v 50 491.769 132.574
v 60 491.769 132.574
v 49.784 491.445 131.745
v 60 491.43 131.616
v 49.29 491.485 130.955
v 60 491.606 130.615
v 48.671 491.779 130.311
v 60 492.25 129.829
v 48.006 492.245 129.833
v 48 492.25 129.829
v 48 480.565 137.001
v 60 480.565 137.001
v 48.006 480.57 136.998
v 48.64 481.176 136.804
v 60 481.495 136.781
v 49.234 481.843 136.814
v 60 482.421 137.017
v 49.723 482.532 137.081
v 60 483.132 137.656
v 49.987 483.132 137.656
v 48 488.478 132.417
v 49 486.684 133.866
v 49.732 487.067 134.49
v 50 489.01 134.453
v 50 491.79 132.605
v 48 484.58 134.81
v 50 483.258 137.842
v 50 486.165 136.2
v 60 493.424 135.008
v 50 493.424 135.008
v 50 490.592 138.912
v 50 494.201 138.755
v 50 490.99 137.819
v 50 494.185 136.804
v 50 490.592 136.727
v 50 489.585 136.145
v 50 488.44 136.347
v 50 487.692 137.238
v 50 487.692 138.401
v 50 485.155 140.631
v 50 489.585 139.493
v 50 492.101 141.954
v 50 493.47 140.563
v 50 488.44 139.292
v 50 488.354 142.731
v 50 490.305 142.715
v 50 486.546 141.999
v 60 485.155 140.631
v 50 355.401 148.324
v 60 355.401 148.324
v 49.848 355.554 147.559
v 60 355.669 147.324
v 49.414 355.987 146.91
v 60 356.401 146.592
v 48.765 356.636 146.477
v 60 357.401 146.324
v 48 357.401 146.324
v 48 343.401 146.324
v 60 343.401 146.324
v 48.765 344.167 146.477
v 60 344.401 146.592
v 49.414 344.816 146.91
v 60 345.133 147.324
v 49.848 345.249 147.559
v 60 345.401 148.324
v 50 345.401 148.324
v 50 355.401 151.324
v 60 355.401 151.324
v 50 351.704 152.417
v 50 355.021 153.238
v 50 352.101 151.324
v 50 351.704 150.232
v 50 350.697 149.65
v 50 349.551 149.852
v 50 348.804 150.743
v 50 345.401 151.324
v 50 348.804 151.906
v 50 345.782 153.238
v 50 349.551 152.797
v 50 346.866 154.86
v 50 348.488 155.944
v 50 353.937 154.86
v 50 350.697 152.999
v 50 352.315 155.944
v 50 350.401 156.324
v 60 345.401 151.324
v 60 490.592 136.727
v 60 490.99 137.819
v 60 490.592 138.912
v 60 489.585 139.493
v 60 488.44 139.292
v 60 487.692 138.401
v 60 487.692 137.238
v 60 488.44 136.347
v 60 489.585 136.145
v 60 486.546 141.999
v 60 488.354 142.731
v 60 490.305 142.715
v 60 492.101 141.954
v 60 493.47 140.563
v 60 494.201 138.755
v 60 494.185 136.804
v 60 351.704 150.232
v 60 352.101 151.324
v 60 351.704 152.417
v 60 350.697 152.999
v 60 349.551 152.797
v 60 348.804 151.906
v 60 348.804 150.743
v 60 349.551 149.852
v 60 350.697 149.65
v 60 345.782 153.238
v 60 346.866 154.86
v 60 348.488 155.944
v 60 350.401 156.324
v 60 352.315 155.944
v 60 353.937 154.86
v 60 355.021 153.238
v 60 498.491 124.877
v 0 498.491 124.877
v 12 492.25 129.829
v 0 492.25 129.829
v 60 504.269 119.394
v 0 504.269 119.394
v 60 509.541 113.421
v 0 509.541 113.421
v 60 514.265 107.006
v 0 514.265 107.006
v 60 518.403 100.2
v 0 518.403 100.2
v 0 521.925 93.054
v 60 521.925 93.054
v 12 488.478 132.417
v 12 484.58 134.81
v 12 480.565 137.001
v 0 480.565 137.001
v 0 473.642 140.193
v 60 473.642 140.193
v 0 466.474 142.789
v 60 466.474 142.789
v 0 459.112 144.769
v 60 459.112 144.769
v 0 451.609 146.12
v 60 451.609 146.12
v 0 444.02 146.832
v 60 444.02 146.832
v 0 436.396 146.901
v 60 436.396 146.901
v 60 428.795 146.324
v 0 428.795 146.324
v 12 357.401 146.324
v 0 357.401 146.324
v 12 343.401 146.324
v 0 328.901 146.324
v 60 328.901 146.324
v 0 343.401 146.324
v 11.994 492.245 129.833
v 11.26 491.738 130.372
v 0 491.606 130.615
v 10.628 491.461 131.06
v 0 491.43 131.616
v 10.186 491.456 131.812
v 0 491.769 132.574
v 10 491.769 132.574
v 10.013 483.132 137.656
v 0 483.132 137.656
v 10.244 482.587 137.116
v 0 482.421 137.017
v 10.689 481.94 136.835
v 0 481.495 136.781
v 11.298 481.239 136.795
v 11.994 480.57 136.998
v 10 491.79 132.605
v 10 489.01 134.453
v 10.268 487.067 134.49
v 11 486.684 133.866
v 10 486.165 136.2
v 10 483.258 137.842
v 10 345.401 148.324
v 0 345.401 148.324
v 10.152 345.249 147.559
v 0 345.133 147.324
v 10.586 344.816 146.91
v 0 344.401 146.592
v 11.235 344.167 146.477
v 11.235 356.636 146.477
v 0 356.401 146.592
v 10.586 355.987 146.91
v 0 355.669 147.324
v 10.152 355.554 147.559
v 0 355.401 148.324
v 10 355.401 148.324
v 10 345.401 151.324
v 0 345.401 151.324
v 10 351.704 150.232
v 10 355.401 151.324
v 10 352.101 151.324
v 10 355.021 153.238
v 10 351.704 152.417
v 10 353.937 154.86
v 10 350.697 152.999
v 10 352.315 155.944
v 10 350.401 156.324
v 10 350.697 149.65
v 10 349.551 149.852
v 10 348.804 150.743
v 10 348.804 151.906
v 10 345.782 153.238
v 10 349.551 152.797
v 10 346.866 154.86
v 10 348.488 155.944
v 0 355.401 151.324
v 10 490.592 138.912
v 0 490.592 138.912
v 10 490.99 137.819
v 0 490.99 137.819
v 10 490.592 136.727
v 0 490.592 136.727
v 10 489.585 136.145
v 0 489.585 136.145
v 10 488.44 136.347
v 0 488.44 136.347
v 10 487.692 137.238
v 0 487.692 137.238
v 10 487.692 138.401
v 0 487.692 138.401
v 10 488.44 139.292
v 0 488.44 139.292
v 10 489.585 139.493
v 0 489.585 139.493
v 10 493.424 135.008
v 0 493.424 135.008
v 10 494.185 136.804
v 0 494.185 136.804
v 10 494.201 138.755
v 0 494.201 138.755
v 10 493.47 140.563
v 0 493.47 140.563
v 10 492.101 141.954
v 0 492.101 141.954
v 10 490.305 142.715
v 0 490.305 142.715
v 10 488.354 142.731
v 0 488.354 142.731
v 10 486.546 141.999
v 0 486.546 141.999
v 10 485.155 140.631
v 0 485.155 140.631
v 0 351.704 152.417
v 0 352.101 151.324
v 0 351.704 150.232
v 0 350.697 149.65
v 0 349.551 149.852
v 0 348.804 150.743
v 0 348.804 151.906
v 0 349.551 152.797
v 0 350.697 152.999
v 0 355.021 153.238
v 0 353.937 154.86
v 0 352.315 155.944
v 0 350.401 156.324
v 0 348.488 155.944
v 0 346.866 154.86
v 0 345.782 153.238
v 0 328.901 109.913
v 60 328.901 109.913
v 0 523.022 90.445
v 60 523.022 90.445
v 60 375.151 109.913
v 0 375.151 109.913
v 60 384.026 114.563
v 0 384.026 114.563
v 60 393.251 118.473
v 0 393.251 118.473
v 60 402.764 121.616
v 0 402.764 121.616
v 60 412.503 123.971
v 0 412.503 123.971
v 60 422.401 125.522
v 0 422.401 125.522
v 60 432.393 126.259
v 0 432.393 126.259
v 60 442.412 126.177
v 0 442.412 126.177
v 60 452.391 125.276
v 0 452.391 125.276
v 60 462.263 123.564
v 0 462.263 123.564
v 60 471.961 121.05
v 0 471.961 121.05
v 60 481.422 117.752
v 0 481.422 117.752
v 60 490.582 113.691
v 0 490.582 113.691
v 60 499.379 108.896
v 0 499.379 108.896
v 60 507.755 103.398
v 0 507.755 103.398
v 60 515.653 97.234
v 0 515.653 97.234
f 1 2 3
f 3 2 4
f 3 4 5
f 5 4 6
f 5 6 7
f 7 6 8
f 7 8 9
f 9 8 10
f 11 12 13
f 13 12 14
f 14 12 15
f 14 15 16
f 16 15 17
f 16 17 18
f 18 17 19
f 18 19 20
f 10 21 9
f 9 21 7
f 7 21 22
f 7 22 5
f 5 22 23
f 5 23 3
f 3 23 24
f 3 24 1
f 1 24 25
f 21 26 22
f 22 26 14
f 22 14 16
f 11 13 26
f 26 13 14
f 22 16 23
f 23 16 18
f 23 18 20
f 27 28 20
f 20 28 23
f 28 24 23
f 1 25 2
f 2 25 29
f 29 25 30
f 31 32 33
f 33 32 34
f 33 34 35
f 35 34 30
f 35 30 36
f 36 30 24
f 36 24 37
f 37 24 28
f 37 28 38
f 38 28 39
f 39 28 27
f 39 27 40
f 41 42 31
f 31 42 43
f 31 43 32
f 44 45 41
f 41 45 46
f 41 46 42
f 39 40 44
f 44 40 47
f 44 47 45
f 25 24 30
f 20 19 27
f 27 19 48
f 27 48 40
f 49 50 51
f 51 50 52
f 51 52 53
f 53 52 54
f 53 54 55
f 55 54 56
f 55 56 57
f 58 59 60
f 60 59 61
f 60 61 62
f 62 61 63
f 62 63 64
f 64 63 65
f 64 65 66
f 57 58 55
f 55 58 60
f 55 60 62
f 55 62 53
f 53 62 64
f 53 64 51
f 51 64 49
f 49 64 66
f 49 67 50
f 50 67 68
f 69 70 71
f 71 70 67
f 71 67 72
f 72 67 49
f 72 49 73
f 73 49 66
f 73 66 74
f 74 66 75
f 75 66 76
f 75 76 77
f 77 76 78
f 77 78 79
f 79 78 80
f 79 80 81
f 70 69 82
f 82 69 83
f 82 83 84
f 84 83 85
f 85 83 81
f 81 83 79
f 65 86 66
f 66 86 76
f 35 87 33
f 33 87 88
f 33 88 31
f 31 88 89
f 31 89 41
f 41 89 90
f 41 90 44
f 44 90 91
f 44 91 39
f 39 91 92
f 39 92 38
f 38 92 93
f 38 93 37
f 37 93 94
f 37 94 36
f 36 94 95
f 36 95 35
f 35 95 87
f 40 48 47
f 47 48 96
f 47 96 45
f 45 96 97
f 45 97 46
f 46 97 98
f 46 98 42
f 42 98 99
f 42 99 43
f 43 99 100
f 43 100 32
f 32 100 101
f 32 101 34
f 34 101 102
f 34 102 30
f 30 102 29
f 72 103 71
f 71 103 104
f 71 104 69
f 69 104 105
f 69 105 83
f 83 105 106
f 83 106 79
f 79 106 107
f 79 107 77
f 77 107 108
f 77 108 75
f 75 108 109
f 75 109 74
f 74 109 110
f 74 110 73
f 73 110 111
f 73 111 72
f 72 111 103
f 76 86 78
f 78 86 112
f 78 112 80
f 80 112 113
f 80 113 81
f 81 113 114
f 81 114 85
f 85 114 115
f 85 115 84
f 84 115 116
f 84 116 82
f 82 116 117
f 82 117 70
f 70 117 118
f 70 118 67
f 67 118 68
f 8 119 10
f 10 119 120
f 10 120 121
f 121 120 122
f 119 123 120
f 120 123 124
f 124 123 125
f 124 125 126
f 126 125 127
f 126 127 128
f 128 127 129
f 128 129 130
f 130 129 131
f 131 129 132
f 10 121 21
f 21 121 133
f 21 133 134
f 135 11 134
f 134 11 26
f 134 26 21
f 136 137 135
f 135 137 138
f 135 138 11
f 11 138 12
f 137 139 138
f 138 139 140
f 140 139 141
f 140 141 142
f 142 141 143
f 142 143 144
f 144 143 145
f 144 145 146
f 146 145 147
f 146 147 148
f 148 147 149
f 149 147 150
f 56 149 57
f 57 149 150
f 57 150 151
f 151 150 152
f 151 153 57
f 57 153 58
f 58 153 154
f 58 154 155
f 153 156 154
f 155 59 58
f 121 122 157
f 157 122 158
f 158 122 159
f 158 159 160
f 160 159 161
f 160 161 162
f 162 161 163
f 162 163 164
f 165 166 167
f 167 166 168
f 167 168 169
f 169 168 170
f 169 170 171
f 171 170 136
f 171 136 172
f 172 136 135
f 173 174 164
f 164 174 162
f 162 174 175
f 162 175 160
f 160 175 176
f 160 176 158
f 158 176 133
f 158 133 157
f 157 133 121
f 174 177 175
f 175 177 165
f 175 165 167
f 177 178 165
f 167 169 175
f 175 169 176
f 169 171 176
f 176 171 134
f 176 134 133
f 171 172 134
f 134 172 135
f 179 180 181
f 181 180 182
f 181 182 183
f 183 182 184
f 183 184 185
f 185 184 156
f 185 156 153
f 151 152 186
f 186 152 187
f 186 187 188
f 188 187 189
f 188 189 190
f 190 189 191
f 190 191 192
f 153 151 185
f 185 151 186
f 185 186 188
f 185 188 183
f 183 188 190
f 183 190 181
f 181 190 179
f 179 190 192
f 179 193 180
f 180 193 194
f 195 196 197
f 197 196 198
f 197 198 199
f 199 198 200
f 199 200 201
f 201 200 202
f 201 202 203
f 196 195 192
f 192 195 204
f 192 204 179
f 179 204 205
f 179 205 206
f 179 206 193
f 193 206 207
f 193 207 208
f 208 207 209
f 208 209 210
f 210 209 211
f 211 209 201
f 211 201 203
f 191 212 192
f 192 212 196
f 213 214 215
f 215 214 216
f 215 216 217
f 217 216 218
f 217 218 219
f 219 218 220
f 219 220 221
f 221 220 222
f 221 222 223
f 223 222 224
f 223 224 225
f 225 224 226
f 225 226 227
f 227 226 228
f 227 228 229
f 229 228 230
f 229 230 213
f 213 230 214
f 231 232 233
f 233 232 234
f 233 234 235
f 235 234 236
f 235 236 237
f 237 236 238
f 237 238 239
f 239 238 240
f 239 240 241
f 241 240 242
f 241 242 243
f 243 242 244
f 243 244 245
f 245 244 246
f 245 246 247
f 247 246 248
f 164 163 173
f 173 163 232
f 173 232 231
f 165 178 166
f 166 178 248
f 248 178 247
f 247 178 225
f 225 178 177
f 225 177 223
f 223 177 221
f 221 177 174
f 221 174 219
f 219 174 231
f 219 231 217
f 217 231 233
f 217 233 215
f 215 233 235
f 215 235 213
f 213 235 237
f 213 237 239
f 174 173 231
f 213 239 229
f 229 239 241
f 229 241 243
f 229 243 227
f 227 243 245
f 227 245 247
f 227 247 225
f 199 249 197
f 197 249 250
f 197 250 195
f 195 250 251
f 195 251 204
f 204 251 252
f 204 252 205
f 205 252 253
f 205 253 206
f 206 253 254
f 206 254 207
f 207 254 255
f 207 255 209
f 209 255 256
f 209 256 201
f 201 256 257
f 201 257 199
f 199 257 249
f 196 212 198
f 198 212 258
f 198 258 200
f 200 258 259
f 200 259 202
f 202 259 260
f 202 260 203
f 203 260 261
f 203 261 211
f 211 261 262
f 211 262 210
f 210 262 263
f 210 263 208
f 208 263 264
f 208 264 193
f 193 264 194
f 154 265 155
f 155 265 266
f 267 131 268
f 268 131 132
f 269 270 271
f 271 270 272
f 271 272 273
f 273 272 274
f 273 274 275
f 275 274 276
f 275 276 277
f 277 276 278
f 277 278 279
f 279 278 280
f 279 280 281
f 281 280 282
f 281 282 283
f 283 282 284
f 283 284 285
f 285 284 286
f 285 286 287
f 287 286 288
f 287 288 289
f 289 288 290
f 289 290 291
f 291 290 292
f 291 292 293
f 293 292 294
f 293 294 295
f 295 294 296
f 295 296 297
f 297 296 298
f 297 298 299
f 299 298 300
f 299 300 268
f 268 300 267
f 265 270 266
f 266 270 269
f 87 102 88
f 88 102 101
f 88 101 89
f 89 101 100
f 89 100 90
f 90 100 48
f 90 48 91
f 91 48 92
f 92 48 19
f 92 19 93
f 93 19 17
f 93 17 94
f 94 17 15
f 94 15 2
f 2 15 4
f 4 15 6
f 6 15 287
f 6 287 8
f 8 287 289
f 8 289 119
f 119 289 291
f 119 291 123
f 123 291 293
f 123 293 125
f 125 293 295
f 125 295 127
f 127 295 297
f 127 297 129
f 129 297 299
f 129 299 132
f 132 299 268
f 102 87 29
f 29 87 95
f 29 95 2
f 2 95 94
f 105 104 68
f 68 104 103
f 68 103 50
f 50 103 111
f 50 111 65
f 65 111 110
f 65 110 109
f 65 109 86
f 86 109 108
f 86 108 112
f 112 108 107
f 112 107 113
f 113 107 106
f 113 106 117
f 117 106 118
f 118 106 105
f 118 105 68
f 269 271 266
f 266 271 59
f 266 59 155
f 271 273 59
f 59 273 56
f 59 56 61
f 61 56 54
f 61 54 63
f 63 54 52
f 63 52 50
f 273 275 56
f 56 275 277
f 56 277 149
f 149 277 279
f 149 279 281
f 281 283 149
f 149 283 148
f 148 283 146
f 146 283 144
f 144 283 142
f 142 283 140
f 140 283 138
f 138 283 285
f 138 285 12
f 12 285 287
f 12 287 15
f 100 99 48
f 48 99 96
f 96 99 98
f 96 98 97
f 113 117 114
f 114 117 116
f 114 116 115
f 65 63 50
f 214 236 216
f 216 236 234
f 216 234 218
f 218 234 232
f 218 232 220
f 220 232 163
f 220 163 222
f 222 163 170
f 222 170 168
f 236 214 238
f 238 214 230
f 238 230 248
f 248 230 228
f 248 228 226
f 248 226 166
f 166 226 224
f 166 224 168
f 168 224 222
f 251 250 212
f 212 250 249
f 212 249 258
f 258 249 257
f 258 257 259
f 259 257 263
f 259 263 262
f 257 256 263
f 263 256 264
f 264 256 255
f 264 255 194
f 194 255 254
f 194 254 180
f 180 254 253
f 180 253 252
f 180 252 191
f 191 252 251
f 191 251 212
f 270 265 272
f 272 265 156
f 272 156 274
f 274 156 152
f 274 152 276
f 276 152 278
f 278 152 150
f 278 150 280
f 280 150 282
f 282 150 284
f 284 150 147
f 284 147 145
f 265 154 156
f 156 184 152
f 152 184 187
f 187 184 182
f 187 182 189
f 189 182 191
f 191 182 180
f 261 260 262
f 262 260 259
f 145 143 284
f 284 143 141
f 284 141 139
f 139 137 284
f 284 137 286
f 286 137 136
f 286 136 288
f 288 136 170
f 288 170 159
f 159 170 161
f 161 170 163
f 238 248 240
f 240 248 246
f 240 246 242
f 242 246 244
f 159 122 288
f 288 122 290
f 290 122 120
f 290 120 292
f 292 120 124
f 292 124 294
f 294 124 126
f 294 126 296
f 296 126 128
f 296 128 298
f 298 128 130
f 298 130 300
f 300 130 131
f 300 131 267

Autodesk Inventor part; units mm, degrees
ref_plane "YZ Plane" through (0, 0, 0) normal (1, 0, 0) x (0, 1, 0)
ref_plane "XZ Plane" through (0, 0, 0) normal (0, 1, 0) x (-1, 0, 0)
sketch "スケッチ3" plane through (0, 0, 0) normal (1, 0, 0) x (0, 1, 0)
  circle A0 centre (436.4013, 3.8245) radius 122.5
  line L0 (299.9013, 146.3245) -> (303.9013, 146.3245)
  line L1 (303.9013, 146.3245) -> (303.9013, -202.8865)
  line L2 (303.9013, -202.8865) -> (299.9013, -202.8865)
  line L3 (299.9013, -202.8865) -> (299.9013, 146.3245)
  line L4 (436.4013, 3.8245) -> (523.0219, 90.445)
  line L5 (436.4013, 3.8245) -> (436.4013, 126.3245)
  line L6 (436.4013, 3.8245) -> (375.1513, 109.9126)
  line L7 (285.9013, 16.0245) -> (238.1013, 16.0245)
  line L8 (238.1013, 16.0245) -> (238.1013, -8.3755)
  line L9 (238.1013, -8.3755) -> (285.9013, -8.3755)
  line L10 (285.9013, -8.3755) -> (285.9013, 16.0245)
  line L11 (285.9013, 10.3245) -> (288.5013, 10.3245)
  line L12 (288.5013, 10.3245) -> (288.5013, -2.6755)
  line L13 (288.5013, -2.6755) -> (285.9013, -2.6755)
  line L14 (285.9013, -2.6755) -> (285.9013, 10.3245)
  line L15 (288.5013, 6.8245) -> (302.9013, 6.8245)
  line L16 (302.9013, 6.8245) -> (302.9013, 0.8245)
  line L17 (302.9013, 0.8245) -> (288.5013, 0.8245)
  line L18 (288.5013, 0.8245) -> (288.5013, 6.8245)
  line L19 (289.9013, 74.154) -> (285.9013, 74.154)
  line L20 (285.9013, 74.154) -> (285.9013, -68.3086)
  line L21 (285.9013, -68.3086) -> (289.9013, -68.3086)
  line L22 (289.9013, -68.3086) -> (289.9013, 74.154)
  line L23 (299.9013, 12.8245) -> (293.9013, 12.8245)
  line L24 (293.9013, 12.8245) -> (293.9013, -5.1755)
  line L25 (293.9013, -5.1755) -> (299.9013, -5.1755)
  line L26 (299.9013, -5.1755) -> (299.9013, 12.8245)
  line L27 (375.1513, 109.9126) -> (303.9013, 109.9126)
  circle A1 centre (-96.0987, 3.8245) radius 600
  line L28 (303.9013, 146.3245) -> (428.795, 146.3245)
  arc A2 (523.0219, 90.445) -> (428.795, 146.3245) centre (439.4013, 56.8245) ccw
  circle A3 centre (-96.0987, 3.8245) radius 400
  circle A4 centre (302.4013, 137.3245) radius 1.5
  circle A5 centre (302.4013, 119.3245) radius 1.5
  line L29 (303.9013, 109.9126) -> (299.9013, 109.9126)
  line L30 (303.9013, 146.3245) -> (318.9013, 146.3245)
  line L31 (318.9013, 146.3245) -> (318.9013, 109.9126)
  line L32 (318.9013, 109.9126) -> (303.9013, 109.9126)
  line L33 (303.9013, 109.9126) -> (303.9013, 146.3245)
  circle A6 centre (311.4013, 131.3245) radius 1.5
  circle A7 centre (311.4013, 116.3245) radius 1.5
  line L34 (328.9013, 146.3245) -> (328.9013, 109.9126)
  circle A8 centre (501.4013, 128.9702) radius 1.7
  circle A9 centre (350.4013, 151.3245) radius 1.7
  circle A10 centre (501.4013, 128.9702) radius 5
  circle A11 centre (350.4013, 151.3245) radius 5
  line L35 (345.4013, 151.3245) -> (345.4013, 146.3245)
  line L36 (355.4013, 151.3245) -> (355.4013, 146.3245)
  circle A12 centre (335.4013, 151.3245) radius 5
  circle A13 centre (335.4013, 151.3245) radius 1.7
  line L37 (328.9013, 146.3245) -> (328.9013, 156.3245)
  line L38 (328.9013, 156.3245) -> (436.4013, 156.3245)
  circle A14 centre (489.2896, 137.8193) radius 5
  circle A15 centre (489.2896, 137.8193) radius 1.7
  circle A16 centre (103.9013, 3.8245) radius 600
  line L39 (523.0219, 90.445) -> (506.0106, 130.908)
  line L40 (436.4013, 156.3245) -> (490.5132, 142.6673)
  line L41 (492.2393, 141.8565) -> (504.351, 133.0074)
  line L42 (485.1551, 140.631) -> (482.1278, 136.1793)
  line L43 (493.4242, 135.0077) -> (490.6655, 130.9509)
  point P0 (0, 0)
  point P1 (303.9013, 128.1185)
  point P2 (497.234, 131.733)
  point P3 (453.1551, 145.8951)
  point P4 (497.1922, 131.669)
  point P5 (463.1906, 143.7544)
  point P6 (497.2988, 131.8284)
  point P7 (497.321, 131.86)
  point P8 (350.4013, 156.3245)
  point P9 (350.4013, 146.3245)
  point P10 (498.1425, 125.1781)
  point P11 (521.9251, 93.054)
  dimension "d65" = 3
  dimension "d66" = 3
  dimension "d67" = 9
  dimension "d68" = 18
  dimension "d69" = 2.5
  dimension "d70" = 2.5
  dimension "d71" = 15
  dimension "d72" = 0
  dimension "d73" = 3
  dimension "d74" = 3
  dimension "d75" = 15
  dimension "d76" = 15
  dimension "d77" = 7.5
  dimension "d78" = 7.5
  dimension "d79" = 10
  dimension "d80" = 3.4
  dimension "d81" = 3.4
  dimension "d82" = 10
  dimension "d83" = 10
  dimension "d84" = 86
  dimension "d85" = 10
  dimension "d86" = 3.4
  dimension "d87" = 15
  dimension "d88" = 10
  dimension "d89" = 3.4
  dimension "d90" = 15
  dimension "d91" = 65
extrude "押し出し4" add sketch "スケッチ3" along normal blind 60 contours A0 A1 A2 L39 | A0 L27 L34 L28 A2 A1
extrude "押し出し5" add sketch "スケッチ3" along normal blind 10 contours A2 A14 A1 | A1 A14 L43 A2 | A14 A1 A15 | A1 A15 A14 | A2 L42 A14 | L35 A11 L28 | A11 | L28 A11 L36
fillet "フィレット2" radius 2 6 edges at (10, 350.4013, 146.3245) (5, 345.4013, 146.3245) (5, 355.4013, 146.3245) (5, 482.1278, 136.1793) (5, 490.6655, 130.9509) (10, 486.4693, 133.6838)
ref_plane "作業平面2" through (30, 0, 0) normal (1, 0, 0) x (0, 0, -1)
mirror "ミラー2" about plane through (30, 0, 0) normal (1, 0, 0) of "押し出し5", "フィレット2"
equation "\"d70\" = d69"
equation "\"d78\" = d77"
properties part number "hand-grab-v2-3DP-arm-C" material "ABS プラスチック"
